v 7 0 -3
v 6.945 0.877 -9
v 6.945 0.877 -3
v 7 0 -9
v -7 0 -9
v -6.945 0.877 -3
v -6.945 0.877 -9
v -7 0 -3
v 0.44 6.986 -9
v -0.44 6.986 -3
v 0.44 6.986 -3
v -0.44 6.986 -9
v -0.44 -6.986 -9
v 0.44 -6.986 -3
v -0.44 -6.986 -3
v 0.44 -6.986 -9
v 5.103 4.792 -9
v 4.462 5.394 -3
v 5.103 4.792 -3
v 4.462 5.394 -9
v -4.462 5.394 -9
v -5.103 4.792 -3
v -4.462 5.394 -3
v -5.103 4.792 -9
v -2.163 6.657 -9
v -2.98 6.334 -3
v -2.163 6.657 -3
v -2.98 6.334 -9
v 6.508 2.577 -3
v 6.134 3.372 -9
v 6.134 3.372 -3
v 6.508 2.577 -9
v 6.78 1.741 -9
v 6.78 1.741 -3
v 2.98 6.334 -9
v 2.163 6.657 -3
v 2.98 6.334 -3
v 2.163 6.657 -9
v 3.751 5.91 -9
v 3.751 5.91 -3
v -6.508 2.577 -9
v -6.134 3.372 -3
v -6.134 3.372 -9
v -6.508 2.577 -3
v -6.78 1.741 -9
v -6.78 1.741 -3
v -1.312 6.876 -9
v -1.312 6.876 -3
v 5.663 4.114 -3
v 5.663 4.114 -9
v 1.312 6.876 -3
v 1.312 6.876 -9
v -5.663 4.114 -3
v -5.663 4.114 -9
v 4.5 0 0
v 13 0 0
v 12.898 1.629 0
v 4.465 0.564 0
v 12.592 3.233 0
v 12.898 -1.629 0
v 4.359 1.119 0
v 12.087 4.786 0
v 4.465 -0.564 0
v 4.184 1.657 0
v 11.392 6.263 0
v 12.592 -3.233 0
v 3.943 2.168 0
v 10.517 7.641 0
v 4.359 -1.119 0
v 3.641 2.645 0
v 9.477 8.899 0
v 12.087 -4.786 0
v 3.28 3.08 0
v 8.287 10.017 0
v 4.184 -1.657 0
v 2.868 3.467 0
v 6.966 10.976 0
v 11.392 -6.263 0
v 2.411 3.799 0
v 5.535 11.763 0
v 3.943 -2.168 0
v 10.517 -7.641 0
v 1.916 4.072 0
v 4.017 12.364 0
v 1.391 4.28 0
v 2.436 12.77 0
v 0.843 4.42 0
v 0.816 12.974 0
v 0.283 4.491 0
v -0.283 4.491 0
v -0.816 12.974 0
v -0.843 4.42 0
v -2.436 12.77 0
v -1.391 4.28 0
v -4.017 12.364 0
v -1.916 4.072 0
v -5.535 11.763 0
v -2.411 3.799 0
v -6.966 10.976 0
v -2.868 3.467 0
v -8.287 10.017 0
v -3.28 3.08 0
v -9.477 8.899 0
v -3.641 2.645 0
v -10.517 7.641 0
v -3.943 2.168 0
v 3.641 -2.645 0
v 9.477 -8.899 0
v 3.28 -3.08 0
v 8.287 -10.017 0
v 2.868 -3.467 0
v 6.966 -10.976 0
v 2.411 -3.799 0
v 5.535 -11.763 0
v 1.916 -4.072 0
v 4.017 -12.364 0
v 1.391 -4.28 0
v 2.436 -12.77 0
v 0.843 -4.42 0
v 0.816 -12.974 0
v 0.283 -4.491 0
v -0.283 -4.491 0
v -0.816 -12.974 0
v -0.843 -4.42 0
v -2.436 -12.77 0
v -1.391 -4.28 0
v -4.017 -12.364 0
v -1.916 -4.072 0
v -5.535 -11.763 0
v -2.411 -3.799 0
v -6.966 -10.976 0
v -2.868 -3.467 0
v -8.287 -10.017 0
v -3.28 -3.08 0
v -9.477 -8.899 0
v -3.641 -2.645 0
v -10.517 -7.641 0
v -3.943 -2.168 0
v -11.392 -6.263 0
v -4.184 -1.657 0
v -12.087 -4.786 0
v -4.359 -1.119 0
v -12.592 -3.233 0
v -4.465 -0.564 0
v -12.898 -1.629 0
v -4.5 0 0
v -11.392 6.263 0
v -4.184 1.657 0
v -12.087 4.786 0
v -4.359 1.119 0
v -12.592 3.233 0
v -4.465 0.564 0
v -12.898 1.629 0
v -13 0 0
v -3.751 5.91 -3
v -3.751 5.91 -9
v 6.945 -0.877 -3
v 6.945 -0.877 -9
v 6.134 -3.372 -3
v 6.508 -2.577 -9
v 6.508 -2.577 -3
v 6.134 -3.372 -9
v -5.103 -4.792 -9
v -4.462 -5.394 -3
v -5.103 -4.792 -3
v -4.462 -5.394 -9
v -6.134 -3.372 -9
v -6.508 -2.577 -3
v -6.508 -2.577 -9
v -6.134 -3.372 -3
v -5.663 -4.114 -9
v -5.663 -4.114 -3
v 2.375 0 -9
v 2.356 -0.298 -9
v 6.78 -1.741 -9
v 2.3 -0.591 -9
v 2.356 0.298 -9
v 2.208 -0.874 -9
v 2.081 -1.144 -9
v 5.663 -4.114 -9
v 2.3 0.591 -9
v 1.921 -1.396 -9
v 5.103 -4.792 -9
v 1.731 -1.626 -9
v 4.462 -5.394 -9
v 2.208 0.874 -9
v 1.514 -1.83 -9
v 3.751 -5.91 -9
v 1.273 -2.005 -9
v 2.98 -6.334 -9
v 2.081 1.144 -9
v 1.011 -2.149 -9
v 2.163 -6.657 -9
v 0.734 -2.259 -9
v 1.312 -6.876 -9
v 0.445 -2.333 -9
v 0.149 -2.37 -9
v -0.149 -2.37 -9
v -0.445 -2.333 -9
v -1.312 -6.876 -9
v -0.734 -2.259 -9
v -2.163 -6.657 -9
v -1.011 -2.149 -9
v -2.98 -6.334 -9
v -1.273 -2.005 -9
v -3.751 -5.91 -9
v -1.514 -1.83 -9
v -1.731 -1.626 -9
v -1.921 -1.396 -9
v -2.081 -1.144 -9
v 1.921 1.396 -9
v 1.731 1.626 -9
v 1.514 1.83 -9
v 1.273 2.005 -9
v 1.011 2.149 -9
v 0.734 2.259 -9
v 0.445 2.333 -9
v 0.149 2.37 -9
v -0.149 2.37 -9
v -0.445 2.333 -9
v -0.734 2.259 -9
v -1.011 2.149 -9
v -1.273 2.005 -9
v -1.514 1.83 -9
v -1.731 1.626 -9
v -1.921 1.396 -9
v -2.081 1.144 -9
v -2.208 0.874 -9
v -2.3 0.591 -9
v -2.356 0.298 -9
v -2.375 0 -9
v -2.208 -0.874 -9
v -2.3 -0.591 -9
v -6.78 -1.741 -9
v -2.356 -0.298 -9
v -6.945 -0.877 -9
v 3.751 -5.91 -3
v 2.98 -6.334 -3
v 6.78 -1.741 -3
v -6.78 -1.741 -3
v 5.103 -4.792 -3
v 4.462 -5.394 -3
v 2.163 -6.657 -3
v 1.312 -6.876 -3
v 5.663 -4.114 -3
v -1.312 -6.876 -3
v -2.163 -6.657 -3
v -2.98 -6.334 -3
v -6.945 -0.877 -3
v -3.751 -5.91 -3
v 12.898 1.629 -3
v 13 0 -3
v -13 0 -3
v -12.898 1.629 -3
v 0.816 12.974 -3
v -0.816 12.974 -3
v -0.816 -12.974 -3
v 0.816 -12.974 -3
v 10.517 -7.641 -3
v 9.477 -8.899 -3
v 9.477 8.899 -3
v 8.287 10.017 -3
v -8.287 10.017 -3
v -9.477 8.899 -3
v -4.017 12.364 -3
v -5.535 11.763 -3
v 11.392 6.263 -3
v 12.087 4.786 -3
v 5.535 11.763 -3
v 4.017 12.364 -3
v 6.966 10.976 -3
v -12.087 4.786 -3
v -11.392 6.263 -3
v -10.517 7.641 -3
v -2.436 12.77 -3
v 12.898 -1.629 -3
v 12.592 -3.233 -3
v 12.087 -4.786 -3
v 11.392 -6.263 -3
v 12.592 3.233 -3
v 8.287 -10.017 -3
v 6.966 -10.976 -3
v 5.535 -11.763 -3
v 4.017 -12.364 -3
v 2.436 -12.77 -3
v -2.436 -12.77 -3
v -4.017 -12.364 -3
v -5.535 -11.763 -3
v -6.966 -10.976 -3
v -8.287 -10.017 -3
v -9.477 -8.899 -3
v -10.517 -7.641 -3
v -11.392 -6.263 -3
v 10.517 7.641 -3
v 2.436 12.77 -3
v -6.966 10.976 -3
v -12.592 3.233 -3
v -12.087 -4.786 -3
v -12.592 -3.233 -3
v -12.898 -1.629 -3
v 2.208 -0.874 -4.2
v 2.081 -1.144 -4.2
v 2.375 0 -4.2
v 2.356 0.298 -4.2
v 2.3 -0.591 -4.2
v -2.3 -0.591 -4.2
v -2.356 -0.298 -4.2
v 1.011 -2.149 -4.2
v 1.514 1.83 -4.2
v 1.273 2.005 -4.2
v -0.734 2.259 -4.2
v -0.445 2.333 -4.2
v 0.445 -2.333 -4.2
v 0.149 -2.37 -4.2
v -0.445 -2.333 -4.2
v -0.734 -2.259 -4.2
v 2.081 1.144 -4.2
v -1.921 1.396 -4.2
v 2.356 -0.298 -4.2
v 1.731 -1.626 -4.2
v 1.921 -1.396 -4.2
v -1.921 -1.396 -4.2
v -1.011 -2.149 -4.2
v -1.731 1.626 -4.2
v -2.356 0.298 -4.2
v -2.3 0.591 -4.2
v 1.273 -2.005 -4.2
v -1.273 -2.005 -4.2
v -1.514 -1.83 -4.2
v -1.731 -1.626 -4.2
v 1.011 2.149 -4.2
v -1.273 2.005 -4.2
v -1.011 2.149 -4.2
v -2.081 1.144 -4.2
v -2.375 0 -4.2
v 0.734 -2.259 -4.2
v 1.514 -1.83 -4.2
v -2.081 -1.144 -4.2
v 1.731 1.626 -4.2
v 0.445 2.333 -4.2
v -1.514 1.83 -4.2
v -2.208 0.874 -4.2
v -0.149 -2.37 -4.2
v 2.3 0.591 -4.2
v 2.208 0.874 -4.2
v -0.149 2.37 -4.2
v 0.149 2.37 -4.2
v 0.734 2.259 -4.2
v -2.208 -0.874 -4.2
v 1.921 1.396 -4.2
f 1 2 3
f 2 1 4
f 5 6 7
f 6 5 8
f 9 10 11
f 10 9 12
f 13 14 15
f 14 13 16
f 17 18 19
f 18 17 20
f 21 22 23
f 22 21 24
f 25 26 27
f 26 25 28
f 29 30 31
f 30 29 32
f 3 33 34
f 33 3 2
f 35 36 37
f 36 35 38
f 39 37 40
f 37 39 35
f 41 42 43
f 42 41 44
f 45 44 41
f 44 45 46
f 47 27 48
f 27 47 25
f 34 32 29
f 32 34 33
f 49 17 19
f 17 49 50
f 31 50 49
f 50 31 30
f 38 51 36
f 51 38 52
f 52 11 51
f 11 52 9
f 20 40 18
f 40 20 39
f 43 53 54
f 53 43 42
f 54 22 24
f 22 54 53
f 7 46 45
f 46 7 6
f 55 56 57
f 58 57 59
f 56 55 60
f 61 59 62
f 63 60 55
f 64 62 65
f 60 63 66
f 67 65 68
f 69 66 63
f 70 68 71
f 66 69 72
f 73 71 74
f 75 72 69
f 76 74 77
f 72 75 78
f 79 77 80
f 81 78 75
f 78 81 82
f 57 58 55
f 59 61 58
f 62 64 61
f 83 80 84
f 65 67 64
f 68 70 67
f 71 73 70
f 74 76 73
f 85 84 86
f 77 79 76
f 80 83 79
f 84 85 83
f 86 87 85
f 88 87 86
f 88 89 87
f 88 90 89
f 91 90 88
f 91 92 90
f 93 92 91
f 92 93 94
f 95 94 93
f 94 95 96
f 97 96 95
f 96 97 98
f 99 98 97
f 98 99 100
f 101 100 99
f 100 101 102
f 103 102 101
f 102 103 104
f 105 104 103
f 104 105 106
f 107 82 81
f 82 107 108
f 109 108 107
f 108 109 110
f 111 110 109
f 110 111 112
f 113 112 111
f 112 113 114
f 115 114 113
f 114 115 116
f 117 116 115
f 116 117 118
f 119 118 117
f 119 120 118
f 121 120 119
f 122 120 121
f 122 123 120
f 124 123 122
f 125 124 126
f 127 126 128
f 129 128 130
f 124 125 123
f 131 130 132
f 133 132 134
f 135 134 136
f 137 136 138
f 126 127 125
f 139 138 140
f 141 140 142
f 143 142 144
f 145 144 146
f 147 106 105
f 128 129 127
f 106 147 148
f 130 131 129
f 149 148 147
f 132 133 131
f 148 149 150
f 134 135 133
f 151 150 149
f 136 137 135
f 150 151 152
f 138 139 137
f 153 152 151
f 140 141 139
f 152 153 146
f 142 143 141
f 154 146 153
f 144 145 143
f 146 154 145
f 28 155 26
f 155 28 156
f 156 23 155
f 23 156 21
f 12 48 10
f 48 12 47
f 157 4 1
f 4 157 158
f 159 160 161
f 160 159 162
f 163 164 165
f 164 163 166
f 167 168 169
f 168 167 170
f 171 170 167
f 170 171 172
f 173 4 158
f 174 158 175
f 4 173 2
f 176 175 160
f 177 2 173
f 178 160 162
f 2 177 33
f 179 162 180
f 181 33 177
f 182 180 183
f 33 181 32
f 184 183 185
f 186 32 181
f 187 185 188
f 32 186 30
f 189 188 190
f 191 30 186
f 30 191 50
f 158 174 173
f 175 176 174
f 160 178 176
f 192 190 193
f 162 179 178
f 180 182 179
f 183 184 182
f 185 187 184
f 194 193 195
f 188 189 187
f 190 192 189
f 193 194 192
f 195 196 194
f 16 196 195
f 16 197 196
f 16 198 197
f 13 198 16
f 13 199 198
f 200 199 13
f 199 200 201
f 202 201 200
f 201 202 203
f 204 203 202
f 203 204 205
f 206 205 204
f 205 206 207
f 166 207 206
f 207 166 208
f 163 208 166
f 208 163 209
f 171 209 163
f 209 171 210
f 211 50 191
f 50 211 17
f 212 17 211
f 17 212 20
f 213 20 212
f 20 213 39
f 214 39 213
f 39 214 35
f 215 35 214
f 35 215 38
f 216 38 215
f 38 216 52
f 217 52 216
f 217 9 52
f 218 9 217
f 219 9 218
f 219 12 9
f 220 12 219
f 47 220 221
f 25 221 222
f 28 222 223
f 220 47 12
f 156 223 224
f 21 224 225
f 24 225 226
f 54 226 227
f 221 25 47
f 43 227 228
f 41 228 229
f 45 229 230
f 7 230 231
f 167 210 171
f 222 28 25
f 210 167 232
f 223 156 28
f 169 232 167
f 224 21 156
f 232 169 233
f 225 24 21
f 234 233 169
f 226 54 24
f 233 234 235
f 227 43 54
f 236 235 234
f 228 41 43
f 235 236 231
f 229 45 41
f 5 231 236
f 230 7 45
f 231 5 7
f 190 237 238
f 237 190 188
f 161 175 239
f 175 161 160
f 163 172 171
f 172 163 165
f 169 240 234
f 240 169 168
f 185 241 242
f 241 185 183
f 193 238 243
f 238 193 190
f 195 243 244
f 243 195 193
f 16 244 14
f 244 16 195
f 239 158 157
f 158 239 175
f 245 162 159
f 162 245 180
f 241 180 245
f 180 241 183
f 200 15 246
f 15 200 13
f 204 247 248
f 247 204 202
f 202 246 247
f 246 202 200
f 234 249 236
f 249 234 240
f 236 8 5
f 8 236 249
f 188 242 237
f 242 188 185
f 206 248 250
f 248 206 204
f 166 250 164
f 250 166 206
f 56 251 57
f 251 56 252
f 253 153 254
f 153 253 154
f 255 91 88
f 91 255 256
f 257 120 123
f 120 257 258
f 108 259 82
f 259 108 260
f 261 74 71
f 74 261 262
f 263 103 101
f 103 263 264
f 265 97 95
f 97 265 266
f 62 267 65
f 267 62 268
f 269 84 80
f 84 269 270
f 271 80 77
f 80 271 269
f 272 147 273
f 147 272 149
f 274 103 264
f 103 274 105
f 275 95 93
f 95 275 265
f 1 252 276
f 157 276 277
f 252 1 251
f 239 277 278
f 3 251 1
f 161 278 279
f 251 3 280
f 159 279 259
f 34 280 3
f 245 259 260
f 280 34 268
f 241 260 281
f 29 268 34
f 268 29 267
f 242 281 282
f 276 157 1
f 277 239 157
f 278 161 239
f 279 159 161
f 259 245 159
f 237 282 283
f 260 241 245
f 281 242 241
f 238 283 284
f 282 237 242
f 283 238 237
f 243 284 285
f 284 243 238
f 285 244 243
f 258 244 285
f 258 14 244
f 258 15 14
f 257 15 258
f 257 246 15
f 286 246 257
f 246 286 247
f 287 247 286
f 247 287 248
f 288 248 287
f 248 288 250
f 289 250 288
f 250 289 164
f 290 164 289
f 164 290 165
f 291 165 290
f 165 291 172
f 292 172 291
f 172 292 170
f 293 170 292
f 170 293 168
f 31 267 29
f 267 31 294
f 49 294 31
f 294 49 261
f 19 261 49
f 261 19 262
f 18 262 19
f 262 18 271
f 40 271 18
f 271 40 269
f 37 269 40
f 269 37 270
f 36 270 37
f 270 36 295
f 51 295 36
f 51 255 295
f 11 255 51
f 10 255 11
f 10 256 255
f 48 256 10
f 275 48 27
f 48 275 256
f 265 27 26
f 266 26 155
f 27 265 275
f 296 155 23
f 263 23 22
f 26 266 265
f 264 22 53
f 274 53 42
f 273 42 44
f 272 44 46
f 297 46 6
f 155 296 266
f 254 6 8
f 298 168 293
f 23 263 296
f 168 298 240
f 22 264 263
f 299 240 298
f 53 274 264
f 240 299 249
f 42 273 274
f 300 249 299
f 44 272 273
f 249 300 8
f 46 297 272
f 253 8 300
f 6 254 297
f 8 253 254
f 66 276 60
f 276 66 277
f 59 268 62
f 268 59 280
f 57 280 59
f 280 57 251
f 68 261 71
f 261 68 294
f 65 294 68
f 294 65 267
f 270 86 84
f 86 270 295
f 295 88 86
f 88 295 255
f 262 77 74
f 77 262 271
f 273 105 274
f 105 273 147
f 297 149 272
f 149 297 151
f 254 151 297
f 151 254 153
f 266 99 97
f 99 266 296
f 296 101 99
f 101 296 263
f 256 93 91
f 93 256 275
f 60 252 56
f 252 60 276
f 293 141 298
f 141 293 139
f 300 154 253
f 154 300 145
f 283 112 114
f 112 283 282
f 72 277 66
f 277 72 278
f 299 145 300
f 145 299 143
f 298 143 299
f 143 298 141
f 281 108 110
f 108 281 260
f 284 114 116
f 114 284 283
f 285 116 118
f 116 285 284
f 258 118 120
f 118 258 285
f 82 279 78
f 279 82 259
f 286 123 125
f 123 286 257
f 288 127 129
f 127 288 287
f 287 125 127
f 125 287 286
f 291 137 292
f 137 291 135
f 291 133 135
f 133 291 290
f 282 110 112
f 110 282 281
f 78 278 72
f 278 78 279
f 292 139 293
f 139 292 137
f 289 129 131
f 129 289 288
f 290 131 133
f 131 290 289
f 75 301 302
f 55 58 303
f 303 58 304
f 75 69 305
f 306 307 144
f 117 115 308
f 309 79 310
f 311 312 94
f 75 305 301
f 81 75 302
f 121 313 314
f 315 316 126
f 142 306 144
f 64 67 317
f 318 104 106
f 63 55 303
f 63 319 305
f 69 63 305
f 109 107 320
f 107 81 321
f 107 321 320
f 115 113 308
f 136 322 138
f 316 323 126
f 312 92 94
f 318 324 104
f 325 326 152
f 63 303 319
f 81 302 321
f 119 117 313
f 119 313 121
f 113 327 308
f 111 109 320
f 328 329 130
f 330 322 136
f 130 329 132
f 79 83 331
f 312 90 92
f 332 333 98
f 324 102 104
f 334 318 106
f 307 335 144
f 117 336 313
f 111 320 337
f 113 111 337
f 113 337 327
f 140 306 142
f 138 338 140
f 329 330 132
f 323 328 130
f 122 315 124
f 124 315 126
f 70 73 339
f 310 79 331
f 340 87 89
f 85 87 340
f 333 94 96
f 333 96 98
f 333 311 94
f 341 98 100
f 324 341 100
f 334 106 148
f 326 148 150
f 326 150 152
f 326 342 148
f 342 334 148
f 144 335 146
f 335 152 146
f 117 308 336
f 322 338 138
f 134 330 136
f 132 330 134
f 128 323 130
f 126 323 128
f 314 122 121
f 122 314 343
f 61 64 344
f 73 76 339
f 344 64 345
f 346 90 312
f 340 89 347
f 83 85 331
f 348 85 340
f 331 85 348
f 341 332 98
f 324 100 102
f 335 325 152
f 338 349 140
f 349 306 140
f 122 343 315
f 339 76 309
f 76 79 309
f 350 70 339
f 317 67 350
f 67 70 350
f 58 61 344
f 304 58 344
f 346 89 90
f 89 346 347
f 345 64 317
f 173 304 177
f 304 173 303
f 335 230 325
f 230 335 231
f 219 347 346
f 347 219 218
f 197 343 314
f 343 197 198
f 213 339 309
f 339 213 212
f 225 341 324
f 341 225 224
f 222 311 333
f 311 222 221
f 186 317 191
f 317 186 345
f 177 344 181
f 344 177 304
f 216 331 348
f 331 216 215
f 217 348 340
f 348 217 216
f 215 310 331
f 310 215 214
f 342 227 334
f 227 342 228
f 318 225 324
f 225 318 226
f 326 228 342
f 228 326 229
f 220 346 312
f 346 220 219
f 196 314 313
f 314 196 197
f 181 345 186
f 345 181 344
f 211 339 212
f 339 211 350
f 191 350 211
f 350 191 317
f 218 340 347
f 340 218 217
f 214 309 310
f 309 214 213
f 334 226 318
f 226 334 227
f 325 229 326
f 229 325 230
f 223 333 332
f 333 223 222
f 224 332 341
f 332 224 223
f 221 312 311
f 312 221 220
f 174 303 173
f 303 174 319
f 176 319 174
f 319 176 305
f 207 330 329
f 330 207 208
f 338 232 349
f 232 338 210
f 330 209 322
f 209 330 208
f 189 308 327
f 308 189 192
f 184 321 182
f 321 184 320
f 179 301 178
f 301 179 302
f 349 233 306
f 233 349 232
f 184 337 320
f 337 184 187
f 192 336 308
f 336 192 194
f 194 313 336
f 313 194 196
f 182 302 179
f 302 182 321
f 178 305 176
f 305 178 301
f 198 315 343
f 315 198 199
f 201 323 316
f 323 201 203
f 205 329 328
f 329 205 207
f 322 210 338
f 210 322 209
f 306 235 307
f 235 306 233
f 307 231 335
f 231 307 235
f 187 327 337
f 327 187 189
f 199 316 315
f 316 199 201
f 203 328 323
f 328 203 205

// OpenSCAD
$fn = 50;


difference() {
	union() {
		translate(v = [0, 0, -9.0000000000]) {
			cylinder(h = 9, r = 7.0000000000);
		}
		translate(v = [0, 0, -3.0000000000]) {
			cylinder(h = 3, r = 13.0000000000);
		}
	}
	union() {
		translate(v = [0, 0, 0]) {
			rotate(a = [0, 0, 0]) {
				difference() {
					union() {
						#translate(v = [0, 0, -9.0000000000]) {
							cylinder(h = 9, r = 2.2500000000);
						}
						#translate(v = [0, 0, -4.2000000000]) {
							cylinder(h = 4.2000000000, r1 = 2.3750000000, r2 = 4.5000000000);
						}
						#translate(v = [0, 0, -9.0000000000]) {
							cylinder(h = 9, r = 2.3750000000);
						}
						#translate(v = [0, 0, -9.0000000000]) {
							cylinder(h = 9, r = 2.2500000000);
						}
					}
					union();
				}
			}
		}
	}
}
